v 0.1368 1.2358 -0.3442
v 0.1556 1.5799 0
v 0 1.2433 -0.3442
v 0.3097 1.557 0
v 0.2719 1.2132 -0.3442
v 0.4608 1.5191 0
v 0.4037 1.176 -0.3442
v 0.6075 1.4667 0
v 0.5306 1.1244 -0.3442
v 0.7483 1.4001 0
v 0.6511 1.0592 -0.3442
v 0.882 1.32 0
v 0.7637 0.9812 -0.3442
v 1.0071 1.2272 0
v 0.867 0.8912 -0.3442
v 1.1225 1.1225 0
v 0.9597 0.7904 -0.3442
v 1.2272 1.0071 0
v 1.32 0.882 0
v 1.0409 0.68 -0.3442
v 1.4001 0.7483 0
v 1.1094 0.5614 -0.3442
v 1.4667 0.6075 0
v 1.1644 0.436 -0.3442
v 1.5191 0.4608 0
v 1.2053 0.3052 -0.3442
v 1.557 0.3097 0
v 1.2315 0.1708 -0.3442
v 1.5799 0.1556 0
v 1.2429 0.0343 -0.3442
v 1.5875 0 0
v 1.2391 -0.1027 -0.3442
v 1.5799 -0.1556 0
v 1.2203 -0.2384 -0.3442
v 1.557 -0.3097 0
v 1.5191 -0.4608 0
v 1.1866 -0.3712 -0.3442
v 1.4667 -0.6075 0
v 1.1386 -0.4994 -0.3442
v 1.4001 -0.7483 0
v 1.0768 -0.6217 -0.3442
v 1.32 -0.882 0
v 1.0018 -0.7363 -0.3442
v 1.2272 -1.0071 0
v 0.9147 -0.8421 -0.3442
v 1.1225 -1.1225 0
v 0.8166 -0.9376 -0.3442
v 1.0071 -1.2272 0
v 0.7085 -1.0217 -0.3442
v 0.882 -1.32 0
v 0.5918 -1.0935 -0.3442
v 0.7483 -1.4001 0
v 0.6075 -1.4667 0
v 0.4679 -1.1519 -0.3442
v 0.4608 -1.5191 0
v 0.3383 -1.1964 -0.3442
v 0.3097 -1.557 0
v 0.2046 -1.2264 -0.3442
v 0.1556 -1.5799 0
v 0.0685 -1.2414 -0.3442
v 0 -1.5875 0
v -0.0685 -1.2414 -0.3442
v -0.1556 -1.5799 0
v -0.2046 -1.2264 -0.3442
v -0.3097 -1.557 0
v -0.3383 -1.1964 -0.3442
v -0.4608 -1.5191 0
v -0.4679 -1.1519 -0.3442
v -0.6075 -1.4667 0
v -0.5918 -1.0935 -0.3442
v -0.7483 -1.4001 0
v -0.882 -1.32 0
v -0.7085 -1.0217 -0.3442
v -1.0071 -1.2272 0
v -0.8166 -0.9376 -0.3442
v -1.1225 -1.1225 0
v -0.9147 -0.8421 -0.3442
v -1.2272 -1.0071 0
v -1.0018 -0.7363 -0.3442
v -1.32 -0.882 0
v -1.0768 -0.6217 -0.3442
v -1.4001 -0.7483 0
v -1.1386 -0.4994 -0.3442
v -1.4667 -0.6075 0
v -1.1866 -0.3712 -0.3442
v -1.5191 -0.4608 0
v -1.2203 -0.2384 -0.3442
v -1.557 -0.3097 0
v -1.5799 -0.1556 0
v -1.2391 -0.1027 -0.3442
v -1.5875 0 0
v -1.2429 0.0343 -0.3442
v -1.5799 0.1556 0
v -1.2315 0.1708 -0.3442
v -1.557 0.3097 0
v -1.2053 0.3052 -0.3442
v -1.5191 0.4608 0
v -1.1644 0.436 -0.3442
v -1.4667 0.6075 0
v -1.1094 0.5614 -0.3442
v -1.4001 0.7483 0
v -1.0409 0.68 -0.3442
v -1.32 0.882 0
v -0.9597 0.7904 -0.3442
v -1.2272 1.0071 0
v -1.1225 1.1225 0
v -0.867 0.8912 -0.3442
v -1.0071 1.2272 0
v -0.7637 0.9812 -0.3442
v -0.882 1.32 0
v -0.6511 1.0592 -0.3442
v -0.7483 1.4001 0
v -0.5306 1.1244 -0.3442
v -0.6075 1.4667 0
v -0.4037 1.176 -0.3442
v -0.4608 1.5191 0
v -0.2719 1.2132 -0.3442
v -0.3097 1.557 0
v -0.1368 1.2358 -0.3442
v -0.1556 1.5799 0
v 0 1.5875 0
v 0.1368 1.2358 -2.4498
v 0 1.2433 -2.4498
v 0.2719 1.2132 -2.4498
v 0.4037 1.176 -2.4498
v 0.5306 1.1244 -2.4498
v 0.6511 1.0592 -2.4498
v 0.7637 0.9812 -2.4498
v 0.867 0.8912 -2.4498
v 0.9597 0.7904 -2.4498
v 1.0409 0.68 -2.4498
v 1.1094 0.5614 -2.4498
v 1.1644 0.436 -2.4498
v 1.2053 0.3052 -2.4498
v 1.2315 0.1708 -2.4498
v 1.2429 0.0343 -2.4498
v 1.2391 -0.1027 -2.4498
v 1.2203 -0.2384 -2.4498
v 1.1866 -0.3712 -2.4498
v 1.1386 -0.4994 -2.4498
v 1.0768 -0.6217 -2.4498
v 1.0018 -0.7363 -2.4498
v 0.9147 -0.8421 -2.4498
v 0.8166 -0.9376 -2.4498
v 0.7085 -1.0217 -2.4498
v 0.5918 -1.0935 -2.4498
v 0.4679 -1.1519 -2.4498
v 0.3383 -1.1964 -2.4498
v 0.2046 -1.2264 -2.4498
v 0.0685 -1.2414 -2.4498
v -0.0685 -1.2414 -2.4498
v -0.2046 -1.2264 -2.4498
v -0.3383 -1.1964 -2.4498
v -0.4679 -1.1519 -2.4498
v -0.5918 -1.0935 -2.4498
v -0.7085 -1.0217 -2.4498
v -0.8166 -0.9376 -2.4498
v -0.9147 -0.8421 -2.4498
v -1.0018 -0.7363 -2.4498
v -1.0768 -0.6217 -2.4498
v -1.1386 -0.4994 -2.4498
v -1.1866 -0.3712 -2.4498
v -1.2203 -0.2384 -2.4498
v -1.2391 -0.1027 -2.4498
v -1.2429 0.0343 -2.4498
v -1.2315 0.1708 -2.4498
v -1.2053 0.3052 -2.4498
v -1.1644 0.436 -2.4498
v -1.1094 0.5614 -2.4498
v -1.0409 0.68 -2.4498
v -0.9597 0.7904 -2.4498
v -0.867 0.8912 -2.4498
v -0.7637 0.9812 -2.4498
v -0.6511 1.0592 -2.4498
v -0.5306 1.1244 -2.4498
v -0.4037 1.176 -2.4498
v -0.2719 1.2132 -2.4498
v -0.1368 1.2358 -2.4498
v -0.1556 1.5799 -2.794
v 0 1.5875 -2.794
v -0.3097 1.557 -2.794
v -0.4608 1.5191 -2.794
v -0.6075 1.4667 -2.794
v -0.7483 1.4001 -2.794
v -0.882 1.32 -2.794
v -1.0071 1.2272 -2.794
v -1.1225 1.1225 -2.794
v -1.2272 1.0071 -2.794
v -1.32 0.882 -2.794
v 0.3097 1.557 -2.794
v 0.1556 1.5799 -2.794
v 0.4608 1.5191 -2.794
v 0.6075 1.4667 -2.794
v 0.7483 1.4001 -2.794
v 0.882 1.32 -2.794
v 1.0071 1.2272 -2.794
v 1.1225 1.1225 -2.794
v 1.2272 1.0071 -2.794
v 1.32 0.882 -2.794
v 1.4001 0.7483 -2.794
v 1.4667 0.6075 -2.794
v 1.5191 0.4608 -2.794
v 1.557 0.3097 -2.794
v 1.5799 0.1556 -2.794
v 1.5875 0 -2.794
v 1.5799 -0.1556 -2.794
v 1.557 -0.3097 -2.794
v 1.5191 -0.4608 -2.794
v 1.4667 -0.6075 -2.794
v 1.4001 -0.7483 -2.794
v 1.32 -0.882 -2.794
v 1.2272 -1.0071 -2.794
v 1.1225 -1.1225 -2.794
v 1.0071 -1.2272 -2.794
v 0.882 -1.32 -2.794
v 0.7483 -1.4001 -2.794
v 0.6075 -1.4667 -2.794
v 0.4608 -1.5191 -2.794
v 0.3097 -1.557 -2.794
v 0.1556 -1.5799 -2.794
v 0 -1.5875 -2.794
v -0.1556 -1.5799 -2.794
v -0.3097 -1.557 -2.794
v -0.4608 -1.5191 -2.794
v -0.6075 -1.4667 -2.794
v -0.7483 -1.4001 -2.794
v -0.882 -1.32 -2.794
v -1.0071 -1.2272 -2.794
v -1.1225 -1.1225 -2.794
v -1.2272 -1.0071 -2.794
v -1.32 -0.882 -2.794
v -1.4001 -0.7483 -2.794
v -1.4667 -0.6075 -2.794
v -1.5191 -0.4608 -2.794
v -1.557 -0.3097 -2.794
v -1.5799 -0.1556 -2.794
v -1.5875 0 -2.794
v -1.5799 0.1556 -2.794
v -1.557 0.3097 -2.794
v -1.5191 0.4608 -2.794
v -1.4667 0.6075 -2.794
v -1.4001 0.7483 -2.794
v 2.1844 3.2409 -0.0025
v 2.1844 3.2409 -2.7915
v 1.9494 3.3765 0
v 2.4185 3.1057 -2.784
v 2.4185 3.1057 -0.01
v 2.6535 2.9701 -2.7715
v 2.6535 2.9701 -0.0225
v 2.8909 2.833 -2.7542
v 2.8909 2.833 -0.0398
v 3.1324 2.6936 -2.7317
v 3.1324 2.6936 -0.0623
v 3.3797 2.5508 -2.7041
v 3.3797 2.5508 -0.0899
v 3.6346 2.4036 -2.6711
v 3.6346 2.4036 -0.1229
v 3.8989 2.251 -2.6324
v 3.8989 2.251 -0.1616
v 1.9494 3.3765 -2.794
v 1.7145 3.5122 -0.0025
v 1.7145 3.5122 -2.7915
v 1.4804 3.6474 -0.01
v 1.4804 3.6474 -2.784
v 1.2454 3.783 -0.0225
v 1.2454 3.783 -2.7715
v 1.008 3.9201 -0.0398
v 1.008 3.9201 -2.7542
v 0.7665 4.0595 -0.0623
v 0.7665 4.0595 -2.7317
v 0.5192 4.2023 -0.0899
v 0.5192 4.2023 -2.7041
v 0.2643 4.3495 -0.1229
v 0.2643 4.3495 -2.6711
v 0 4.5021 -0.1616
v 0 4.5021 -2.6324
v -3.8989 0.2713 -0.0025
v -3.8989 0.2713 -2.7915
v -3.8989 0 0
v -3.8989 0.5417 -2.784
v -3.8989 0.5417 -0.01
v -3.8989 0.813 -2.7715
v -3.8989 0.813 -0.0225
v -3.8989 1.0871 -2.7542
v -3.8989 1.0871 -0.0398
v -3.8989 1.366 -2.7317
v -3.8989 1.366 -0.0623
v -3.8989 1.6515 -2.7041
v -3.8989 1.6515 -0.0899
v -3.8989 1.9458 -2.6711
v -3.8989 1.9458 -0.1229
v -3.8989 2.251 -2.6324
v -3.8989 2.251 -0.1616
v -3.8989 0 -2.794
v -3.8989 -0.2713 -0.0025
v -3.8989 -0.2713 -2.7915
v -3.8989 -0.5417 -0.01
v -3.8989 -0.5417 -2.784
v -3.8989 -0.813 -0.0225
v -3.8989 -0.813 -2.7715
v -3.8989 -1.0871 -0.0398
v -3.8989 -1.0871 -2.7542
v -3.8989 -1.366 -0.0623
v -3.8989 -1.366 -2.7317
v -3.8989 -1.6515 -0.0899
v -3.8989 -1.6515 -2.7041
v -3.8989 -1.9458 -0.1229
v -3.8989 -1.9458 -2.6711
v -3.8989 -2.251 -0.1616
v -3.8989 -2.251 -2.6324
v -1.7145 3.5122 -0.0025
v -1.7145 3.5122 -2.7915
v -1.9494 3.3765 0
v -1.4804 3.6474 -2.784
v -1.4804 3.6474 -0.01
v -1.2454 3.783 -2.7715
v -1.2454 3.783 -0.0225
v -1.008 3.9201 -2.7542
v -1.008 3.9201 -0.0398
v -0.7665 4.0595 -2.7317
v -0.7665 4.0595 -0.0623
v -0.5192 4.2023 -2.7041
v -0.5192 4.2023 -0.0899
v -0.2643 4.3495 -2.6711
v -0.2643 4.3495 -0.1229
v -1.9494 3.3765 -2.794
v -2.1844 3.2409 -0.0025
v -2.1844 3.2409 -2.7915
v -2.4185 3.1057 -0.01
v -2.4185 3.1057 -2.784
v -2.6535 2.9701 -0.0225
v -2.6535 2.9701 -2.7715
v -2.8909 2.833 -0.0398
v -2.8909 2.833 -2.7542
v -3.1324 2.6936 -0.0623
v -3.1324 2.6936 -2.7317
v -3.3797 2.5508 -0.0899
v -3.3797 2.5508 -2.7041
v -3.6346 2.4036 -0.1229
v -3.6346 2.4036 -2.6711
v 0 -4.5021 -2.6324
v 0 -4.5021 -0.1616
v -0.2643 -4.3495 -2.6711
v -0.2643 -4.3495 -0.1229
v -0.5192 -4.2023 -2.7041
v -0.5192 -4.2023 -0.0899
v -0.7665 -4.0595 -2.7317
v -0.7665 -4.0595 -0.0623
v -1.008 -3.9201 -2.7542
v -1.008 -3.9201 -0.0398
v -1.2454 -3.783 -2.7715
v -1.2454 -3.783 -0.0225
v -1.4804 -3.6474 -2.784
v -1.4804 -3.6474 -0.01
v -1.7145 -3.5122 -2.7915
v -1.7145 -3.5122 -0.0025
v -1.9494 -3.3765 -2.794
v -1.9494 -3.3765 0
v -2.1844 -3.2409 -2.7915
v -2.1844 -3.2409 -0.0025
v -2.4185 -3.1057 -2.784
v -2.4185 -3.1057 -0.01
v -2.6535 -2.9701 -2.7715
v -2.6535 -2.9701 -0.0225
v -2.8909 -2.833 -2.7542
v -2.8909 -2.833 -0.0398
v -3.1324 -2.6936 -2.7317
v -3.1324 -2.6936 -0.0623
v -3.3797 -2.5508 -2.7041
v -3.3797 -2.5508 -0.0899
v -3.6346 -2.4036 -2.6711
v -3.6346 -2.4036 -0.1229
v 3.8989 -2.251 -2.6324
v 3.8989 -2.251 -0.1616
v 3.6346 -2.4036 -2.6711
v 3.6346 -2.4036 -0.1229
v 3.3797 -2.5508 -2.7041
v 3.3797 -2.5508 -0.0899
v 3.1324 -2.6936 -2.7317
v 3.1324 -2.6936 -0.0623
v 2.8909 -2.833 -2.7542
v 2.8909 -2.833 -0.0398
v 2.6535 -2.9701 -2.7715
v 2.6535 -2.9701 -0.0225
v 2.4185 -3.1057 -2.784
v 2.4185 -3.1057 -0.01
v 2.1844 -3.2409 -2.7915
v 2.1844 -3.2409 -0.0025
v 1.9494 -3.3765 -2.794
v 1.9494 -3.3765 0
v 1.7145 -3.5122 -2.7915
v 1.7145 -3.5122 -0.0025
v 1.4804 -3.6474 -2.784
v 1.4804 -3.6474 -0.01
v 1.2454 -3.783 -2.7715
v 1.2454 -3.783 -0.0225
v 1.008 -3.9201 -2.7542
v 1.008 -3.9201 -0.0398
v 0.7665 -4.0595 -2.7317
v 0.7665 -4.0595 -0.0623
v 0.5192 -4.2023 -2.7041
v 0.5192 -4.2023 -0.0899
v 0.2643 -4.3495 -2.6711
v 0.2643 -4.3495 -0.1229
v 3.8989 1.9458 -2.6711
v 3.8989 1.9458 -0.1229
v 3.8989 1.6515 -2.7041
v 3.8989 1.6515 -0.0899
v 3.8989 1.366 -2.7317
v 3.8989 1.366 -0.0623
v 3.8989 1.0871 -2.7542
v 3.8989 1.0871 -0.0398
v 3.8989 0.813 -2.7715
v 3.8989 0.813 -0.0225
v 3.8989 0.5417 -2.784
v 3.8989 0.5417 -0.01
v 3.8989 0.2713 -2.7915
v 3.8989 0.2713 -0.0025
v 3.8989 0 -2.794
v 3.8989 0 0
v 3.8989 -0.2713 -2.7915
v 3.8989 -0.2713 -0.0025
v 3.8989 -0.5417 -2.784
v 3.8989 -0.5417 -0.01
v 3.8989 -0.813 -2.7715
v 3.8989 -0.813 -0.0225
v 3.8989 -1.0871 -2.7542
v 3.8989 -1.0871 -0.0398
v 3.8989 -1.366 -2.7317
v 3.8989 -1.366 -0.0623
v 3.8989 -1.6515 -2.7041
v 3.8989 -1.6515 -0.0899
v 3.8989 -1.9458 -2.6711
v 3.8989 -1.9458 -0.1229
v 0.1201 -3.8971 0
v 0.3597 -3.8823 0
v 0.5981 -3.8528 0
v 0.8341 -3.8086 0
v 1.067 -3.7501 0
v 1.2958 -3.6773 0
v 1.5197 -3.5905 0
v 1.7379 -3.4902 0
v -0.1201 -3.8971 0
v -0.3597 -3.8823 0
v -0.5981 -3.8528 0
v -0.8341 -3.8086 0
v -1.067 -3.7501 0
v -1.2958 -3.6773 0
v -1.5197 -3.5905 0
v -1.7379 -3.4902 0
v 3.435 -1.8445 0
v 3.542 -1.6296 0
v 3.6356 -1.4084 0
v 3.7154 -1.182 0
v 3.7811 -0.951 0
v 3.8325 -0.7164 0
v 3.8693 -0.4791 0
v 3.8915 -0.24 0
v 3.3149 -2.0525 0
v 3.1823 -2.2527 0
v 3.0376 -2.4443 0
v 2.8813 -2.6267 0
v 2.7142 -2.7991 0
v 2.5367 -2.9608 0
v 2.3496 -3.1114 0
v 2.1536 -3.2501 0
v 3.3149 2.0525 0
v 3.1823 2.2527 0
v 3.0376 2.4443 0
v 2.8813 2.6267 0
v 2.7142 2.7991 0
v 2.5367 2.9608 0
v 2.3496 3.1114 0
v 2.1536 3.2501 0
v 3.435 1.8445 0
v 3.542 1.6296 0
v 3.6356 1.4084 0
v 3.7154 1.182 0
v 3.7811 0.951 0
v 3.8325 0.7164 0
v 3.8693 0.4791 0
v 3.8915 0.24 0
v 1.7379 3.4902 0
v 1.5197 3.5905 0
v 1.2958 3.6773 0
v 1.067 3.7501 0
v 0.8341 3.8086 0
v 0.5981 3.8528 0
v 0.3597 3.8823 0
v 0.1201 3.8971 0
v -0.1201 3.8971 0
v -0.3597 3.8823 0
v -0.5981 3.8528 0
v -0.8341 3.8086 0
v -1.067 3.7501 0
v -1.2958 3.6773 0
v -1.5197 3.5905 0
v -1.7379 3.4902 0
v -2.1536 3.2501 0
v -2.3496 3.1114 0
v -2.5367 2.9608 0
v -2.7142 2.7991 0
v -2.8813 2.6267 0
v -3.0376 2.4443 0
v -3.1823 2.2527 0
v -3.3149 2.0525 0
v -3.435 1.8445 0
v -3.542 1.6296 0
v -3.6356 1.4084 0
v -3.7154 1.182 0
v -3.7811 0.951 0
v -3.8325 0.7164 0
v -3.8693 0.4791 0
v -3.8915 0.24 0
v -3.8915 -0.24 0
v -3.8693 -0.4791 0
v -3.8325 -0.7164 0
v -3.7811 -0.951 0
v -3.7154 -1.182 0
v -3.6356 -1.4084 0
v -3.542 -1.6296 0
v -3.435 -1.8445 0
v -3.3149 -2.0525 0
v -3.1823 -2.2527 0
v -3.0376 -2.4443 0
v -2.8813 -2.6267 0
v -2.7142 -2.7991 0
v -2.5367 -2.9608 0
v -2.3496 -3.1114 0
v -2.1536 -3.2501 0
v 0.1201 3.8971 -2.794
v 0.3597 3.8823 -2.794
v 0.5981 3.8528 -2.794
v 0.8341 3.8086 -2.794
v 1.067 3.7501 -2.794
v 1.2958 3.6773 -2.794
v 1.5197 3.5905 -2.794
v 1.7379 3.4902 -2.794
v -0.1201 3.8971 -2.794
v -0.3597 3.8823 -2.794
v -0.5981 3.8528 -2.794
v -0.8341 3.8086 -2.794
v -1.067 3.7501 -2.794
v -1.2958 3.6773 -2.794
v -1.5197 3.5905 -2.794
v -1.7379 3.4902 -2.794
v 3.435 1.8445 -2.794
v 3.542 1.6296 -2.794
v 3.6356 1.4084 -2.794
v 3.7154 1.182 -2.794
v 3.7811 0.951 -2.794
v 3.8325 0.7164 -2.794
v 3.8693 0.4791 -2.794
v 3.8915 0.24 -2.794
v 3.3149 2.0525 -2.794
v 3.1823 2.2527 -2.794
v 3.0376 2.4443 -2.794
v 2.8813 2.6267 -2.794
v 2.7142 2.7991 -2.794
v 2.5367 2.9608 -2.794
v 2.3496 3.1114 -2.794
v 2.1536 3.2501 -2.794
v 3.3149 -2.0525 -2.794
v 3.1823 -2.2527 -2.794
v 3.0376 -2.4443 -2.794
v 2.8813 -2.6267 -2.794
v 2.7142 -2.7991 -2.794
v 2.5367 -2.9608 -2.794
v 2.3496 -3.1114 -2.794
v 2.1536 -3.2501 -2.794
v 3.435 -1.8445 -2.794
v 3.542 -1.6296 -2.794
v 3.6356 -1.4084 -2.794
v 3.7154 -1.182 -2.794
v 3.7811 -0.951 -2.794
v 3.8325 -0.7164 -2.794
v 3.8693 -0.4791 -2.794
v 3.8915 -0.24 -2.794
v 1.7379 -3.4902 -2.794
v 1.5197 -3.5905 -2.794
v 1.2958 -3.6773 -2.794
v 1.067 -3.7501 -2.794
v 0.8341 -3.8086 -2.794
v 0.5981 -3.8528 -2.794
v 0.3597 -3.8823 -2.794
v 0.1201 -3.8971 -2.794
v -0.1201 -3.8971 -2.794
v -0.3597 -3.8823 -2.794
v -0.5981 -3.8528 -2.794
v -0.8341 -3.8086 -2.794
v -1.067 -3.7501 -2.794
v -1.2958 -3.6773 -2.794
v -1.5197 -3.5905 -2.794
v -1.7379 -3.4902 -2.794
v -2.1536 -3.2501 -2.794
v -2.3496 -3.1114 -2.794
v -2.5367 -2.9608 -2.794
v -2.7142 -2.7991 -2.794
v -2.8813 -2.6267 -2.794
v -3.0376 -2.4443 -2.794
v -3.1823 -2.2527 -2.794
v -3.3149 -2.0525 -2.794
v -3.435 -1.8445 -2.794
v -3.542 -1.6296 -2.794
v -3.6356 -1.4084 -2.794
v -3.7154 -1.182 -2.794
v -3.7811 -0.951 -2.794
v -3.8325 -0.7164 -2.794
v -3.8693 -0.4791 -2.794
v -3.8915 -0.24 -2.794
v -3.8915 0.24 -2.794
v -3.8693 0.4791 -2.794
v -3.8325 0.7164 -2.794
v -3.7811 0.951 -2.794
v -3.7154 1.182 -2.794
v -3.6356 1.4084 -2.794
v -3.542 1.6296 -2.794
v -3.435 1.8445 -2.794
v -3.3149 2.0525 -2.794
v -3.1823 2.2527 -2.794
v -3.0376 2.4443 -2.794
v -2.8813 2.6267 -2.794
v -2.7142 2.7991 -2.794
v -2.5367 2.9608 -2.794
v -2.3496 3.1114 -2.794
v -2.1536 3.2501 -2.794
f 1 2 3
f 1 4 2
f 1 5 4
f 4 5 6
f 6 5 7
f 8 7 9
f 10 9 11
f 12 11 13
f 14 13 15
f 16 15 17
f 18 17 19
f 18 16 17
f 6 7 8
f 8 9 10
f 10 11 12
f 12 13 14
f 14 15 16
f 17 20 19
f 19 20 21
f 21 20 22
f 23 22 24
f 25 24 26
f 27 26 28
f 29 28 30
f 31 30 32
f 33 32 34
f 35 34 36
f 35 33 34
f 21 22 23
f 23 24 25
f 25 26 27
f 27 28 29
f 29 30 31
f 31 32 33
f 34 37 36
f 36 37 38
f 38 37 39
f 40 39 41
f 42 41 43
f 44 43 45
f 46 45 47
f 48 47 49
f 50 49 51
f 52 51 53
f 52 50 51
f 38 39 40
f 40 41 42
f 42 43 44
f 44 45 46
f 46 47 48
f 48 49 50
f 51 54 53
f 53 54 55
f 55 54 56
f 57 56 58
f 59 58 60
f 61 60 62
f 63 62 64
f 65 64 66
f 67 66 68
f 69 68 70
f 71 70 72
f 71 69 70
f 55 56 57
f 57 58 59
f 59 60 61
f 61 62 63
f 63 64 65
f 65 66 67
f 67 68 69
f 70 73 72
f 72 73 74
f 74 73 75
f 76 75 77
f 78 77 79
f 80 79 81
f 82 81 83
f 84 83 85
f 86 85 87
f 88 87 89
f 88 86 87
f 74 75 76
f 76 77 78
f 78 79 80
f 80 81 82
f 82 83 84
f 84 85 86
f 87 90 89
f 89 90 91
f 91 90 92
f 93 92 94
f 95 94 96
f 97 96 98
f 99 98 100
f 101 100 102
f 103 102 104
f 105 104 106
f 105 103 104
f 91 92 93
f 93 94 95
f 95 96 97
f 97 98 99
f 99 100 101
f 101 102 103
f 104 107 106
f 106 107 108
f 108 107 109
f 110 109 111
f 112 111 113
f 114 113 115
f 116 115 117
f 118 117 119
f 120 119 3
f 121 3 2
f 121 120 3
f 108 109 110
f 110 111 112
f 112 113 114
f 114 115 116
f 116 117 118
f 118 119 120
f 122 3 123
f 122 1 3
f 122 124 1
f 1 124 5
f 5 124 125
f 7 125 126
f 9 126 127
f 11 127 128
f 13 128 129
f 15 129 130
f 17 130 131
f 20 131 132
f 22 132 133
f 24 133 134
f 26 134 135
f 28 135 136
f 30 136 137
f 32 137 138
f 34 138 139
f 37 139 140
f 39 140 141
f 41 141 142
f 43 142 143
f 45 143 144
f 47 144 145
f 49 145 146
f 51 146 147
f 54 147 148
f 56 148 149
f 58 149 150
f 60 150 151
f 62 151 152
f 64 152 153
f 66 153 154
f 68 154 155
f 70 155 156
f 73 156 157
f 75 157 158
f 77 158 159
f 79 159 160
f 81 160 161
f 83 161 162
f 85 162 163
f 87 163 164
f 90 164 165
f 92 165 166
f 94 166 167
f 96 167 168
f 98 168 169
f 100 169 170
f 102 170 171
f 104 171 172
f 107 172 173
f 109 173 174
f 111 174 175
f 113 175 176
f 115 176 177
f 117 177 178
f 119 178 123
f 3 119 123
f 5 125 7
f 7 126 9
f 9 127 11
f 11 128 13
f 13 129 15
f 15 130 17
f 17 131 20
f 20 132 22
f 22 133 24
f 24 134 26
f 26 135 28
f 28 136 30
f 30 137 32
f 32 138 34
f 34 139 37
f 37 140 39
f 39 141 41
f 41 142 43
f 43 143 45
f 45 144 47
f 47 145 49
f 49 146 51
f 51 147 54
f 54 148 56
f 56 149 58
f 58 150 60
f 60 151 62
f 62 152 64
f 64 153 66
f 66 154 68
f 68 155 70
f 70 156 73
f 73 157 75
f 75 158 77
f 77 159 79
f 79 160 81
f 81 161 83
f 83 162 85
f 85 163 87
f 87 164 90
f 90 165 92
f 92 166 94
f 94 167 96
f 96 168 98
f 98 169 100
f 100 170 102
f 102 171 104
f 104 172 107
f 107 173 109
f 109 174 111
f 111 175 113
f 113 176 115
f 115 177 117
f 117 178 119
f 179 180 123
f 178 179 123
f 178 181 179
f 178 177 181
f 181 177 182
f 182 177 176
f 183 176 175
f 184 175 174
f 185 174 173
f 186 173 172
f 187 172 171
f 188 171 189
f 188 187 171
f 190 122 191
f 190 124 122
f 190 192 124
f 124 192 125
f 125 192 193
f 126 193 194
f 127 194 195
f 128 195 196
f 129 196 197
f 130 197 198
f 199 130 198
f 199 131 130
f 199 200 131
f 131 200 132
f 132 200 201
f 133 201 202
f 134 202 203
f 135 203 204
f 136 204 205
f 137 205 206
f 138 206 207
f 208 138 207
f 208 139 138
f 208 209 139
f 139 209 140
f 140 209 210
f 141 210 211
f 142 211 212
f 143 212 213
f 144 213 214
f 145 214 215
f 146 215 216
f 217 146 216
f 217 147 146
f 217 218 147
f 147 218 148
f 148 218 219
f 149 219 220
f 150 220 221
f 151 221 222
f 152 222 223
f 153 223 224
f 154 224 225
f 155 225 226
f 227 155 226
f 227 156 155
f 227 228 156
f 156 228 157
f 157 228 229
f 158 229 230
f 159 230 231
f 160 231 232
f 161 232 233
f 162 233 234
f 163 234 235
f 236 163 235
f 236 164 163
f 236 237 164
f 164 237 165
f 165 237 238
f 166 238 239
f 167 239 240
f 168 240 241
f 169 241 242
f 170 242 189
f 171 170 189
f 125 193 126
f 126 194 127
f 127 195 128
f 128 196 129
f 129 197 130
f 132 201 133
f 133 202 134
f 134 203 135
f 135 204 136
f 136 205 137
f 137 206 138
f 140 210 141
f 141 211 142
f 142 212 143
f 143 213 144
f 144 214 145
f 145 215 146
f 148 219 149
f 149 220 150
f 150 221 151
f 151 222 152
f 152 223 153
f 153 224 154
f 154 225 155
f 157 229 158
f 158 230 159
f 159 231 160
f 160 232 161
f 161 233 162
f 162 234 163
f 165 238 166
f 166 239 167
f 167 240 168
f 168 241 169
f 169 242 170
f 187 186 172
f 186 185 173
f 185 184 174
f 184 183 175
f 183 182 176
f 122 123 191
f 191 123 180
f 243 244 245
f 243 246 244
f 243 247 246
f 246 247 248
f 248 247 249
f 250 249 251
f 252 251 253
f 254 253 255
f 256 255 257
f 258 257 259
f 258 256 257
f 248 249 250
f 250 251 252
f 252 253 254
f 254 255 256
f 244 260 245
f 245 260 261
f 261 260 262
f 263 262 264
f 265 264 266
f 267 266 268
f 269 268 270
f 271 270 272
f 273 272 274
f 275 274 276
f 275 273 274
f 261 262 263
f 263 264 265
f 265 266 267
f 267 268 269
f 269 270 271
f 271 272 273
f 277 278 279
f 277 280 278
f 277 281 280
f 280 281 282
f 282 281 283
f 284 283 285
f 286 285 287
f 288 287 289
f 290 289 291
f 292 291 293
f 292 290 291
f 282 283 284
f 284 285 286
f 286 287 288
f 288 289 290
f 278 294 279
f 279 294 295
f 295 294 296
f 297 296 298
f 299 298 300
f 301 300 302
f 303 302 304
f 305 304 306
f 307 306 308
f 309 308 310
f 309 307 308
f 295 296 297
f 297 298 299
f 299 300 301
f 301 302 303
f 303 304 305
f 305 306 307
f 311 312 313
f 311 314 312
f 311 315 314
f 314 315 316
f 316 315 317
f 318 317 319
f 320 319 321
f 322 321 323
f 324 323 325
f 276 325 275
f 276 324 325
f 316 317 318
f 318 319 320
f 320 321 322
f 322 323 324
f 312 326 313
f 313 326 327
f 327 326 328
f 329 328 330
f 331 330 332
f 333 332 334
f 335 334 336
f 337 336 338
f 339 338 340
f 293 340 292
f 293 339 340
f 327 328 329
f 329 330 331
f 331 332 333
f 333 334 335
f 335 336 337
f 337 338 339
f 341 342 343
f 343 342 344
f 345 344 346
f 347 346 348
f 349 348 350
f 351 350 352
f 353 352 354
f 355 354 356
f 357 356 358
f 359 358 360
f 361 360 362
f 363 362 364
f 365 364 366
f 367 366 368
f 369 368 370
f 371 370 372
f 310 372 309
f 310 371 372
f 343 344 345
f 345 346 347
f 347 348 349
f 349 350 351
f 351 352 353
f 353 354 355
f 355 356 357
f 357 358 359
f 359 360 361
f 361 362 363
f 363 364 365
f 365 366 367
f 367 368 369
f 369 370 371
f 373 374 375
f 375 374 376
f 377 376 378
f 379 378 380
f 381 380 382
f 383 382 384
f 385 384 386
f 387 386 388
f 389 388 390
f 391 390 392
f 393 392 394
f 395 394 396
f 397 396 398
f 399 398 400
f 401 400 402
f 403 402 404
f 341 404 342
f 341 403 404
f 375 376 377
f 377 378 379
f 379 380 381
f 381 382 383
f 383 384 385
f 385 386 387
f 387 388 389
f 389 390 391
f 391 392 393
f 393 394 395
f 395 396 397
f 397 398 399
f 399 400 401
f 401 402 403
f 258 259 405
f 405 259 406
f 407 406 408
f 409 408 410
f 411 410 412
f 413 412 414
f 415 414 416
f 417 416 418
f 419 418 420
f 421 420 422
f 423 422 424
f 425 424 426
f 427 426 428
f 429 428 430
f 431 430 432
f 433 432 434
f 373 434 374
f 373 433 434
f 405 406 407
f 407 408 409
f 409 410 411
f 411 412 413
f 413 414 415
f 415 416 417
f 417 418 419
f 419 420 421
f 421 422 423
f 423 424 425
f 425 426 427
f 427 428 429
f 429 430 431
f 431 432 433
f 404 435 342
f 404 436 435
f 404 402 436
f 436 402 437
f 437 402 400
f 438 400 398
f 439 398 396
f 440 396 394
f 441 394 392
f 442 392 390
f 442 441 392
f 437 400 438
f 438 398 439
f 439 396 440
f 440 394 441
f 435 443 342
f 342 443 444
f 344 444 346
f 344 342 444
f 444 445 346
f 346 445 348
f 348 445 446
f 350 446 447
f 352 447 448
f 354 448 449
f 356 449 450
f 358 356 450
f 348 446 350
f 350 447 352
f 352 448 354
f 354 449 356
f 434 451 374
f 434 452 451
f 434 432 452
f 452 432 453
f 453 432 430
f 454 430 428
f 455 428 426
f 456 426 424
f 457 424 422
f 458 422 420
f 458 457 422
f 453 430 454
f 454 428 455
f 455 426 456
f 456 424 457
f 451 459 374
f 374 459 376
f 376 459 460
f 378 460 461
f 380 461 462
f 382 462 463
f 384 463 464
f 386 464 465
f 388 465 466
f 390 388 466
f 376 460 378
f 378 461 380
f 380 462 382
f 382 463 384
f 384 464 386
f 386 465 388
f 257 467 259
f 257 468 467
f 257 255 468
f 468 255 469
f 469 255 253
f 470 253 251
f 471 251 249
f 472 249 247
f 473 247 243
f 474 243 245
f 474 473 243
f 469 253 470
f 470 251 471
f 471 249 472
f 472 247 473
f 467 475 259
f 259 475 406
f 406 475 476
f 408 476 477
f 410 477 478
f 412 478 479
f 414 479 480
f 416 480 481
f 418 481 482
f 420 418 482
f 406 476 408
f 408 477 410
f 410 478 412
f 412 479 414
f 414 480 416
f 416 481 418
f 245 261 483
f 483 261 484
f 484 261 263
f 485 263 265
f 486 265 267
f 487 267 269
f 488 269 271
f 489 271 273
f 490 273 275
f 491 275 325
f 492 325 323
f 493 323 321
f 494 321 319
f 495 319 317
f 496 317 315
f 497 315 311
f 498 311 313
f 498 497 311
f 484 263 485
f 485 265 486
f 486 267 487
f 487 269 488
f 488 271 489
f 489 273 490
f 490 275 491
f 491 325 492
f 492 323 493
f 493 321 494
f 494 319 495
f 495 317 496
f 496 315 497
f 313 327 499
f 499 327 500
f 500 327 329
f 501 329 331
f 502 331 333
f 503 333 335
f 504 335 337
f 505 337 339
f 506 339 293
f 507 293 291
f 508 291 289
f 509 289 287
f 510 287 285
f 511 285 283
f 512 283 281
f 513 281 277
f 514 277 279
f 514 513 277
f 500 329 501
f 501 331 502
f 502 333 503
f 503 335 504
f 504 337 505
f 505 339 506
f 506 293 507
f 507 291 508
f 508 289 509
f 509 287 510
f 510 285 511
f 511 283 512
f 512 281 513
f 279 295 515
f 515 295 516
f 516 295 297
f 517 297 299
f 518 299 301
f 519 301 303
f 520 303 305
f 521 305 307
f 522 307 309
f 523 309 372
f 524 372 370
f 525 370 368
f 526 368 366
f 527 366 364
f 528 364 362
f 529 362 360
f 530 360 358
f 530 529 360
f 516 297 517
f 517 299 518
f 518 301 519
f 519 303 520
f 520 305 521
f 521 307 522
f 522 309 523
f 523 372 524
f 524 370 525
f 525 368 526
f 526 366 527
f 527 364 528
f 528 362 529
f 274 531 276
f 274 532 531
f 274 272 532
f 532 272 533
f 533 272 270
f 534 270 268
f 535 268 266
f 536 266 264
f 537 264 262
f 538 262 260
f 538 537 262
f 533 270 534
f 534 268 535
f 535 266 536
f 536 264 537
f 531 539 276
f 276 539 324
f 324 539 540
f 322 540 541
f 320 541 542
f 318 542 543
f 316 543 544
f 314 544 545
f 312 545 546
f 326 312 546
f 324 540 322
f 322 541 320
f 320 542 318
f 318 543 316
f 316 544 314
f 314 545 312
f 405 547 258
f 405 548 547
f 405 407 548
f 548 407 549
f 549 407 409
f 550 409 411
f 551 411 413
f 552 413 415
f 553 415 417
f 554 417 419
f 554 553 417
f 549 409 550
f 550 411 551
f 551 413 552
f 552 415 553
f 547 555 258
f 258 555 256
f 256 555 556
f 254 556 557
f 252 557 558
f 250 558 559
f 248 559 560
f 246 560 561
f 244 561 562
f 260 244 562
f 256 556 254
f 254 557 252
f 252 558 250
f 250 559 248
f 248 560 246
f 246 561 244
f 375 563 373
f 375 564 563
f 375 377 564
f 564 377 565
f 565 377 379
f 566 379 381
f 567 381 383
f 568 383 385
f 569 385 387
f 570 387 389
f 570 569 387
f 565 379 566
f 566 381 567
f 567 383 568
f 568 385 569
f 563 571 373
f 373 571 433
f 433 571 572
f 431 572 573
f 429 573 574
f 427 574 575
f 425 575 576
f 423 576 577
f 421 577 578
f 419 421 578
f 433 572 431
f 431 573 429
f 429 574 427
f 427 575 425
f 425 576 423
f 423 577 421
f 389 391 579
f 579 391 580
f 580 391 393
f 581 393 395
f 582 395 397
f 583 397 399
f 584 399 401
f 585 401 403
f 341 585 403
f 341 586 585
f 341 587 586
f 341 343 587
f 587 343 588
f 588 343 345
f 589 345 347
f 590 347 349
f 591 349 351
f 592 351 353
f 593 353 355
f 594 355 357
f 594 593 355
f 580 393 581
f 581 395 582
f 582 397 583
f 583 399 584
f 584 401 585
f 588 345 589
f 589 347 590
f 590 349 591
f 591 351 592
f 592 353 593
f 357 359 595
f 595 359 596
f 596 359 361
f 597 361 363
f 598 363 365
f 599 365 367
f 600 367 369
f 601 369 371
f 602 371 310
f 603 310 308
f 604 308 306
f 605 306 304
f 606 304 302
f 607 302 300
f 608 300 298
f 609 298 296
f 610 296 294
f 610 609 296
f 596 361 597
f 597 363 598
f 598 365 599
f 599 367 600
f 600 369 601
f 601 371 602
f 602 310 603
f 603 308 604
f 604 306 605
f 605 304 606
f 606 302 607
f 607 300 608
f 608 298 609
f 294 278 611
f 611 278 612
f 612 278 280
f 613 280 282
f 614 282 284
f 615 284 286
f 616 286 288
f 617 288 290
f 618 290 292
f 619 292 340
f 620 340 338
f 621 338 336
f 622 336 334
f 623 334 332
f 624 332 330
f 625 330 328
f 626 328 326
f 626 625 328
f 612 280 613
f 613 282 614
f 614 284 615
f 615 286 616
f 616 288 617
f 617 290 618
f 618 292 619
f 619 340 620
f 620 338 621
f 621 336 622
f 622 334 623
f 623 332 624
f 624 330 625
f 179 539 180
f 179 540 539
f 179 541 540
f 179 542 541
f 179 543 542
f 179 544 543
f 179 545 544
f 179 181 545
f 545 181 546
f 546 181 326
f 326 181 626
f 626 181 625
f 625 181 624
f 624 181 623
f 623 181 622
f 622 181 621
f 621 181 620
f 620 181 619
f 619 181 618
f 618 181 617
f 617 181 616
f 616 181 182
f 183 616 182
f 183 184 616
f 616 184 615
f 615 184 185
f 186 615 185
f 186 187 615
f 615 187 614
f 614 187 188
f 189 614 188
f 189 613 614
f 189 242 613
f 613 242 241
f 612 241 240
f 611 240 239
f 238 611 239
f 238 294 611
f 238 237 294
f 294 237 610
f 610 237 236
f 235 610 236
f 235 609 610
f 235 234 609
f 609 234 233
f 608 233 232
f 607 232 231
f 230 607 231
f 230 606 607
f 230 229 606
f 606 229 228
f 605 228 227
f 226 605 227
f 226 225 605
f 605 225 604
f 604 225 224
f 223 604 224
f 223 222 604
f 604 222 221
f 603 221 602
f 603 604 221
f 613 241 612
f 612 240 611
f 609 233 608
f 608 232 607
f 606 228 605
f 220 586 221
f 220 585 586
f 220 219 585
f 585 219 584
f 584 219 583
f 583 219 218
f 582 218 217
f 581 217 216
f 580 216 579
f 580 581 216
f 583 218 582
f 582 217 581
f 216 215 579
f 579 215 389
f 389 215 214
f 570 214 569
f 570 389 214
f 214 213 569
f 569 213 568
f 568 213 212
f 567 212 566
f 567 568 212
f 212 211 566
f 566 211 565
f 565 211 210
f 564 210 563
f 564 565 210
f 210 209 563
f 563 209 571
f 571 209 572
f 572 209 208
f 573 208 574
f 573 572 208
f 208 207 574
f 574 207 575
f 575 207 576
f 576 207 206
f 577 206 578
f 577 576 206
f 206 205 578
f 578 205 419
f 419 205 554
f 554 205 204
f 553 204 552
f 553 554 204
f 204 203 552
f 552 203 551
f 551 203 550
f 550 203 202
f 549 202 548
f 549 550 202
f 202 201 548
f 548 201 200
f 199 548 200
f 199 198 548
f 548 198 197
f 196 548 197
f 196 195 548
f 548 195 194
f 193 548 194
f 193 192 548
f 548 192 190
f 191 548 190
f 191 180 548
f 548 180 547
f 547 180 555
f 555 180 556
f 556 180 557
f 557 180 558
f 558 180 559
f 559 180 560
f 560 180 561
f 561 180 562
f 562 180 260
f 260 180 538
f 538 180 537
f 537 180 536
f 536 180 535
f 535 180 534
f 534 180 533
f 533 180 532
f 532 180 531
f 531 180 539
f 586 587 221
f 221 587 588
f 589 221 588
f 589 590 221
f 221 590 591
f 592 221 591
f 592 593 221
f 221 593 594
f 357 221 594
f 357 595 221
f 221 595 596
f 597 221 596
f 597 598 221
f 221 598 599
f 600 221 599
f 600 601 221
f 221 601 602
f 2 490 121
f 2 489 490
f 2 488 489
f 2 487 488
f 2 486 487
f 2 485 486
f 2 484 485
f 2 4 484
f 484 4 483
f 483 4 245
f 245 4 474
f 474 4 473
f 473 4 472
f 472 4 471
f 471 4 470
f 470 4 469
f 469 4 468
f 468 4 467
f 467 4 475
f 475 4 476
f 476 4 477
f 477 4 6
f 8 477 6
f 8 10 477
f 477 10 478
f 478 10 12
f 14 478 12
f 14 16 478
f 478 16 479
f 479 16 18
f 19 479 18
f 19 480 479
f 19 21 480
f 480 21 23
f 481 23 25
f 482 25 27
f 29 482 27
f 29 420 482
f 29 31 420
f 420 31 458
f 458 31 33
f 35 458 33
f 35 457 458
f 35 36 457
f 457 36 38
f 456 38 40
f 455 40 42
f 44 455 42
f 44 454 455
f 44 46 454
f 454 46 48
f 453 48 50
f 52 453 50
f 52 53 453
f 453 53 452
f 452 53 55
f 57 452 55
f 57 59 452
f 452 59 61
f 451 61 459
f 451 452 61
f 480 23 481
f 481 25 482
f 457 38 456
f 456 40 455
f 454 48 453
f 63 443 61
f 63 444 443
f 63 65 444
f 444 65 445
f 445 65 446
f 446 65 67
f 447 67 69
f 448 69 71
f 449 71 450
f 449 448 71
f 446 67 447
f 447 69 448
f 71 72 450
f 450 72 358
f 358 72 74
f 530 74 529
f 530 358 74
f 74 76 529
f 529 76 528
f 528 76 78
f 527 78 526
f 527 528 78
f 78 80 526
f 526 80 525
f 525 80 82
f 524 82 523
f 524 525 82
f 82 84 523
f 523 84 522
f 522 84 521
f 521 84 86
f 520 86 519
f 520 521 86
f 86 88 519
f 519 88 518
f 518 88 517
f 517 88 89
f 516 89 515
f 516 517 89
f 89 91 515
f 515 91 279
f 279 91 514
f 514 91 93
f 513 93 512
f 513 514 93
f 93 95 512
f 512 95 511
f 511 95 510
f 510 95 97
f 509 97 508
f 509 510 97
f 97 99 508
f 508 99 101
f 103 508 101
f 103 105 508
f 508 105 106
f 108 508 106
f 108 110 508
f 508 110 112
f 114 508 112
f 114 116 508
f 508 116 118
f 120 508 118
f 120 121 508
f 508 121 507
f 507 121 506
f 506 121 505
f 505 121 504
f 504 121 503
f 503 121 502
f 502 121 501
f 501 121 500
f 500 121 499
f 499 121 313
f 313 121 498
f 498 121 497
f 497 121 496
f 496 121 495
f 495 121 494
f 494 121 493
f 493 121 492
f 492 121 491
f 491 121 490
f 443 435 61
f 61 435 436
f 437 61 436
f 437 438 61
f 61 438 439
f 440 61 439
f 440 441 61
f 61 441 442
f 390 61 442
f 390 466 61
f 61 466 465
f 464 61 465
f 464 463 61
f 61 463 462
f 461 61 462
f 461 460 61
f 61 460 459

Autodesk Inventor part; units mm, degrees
sketch "Sketch_8" plane through (0, 0, 0) normal (1, 0, 0) x (0, 1, 0)
  line L0 (0, -2.794) -> (0, 0)
  line L1 (0, 0) -> (3.8989, 0)
  line L2 (3.8989, 0) -> (4.6787, -0.2089)
  line L3 (4.6787, -0.2089) -> (4.6787, -2.5851)
  line L4 (4.6787, -2.5851) -> (3.8989, -2.794)
  line L5 (3.8989, -2.794) -> (0, -2.794)
  line L6 (0, -2.794) -> (0, 0)
sketch "Sketch_10" plane through (0, 0, 0) normal (0, 0, 1) x (1, 0, 0)
  line L0 (-7.7978, 7.7978) -> (-7.7978, -7.7978)
  line L1 (-7.7978, -7.7978) -> (7.7978, -7.7978)
  line L2 (7.7978, -7.7978) -> (7.7978, 7.7978)
  line L3 (7.7978, 7.7978) -> (-7.7978, 7.7978)
  line L4 (-3.8989, 2.251) -> (-3.8989, -2.251)
  line L5 (-3.8989, -2.251) -> (0, -4.5021)
  line L6 (0, -4.5021) -> (3.8989, -2.251)
  line L7 (3.8989, -2.251) -> (3.8989, 2.251)
  line L8 (3.8989, 2.251) -> (0, 4.5021)
  line L9 (0, 4.5021) -> (-3.8989, 2.251)
revolve "Revolution1" add sketch "Sketch_8" angle 360 about axis through (0, 0, -2.794) along (0, 0, -1)
extrude "Extrusion1" cut sketch "Sketch_10" against normal blind 2.794
sketch "Sketch_13" plane through (0, 0, 0) normal (1, 0, 0) x (0, 1, 0)
  line L0 (0, -2.794) -> (0, 0)
  line L1 (0, 0) -> (1.5875, 0)
  line L2 (1.5875, 0) -> (1.2433, -0.3442)
  line L3 (1.2433, -0.3442) -> (1.2433, -2.4498)
  line L4 (1.2433, -2.4498) -> (1.5875, -2.794)
  line L5 (1.5875, -2.794) -> (0, -2.794)
  line L6 (0, -2.794) -> (0, 0)
revolve "Revolution2" cut sketch "Sketch_13" angle 360 about axis through (0, 0, -2.794) along (0, 0, -1)
thread "Thread1" size "5-40 UNC" class "2B" standard "ANSI Unified Screw Threads" full length
ref_plane "NUT_XY" through (0, 0, 0) normal (0, 0, 1) x (1, 0, 0)
ref_plane "NUT_YZ" through (0, 0, 0) normal (1, 0, 0) x (0, 1, 0)
ref_plane "NUT_ZX" through (0, 0, 0) normal (0, 1, 0) x (0, 0, 1)
ref_plane "a1_XY" through (-3.8989, 3.8989, 0) normal (0, 0, 1) x (1, 0, 0)
ref_plane "a1_YZ" through (-3.8989, 3.8989, 0) normal (1, 0, 0) x (0, 1, 0)
ref_plane "a1_ZX" through (-3.8989, 3.8989, 0) normal (0, 1, 0) x (0, 0, 1)
ref_plane "a2_XY" through (3.8989, 3.8989, 0) normal (0, 0, 1) x (1, 0, 0)
ref_plane "a2_YZ" through (3.8989, 3.8989, 0) normal (1, 0, 0) x (0, 1, 0)
ref_plane "a2_ZX" through (3.8989, 3.8989, 0) normal (0, 1, 0) x (0, 0, 1)
ref_plane "b1_XY" through (0, 3.8989, 0) normal (1, 0, 0) x (0, 0, -1)
ref_plane "b1_YZ" through (0, 3.8989, 0) normal (0, 0, -1) x (0, 1, 0)
ref_plane "b1_ZX" through (0, 3.8989, 0) normal (0, 1, 0) x (1, 0, 0)
ref_plane "b2_XY" through (0, 3.8989, -2.794) normal (1, 0, 0) x (0, 0, -1)
ref_plane "b2_YZ" through (0, 3.8989, -2.794) normal (0, 0, -1) x (0, 1, 0)
ref_plane "b2_ZX" through (0, 3.8989, -2.794) normal (0, 1, 0) x (1, 0, 0)
ref_plane "e_XY" through (0, 0, -2.794) normal (1, 0, 0) x (0, 0, -1)
ref_plane "e_YZ" through (0, 0, -2.794) normal (0, 0, -1) x (0, 1, 0)
ref_plane "e_ZX" through (0, 0, -2.794) normal (0, 1, 0) x (1, 0, 0)
ref_plane "th1_XY" through (0, 1.5875, -2.794) normal (1, 0, 0) x (0, 0, -1)
ref_plane "th1_YZ" through (0, 1.5875, -2.794) normal (0, 0, -1) x (0, 1, 0)
ref_plane "th1_ZX" through (0, 1.5875, -2.794) normal (0, 1, 0) x (1, 0, 0)
ref_plane "th2_XY" through (0, -1.5875, -2.794) normal (1, 0, 0) x (0, 0, -1)
ref_plane "th2_YZ" through (0, -1.5875, -2.794) normal (0, 0, -1) x (0, 1, 0)
ref_plane "th2_ZX" through (0, -1.5875, -2.794) normal (0, 1, 0) x (1, 0, 0)
ref_plane "ol1_XY" through (0, 0, -3.8989) normal (0, 1, 0) x (1, 0, 0)
ref_plane "ol1_YZ" through (0, 0, -3.8989) normal (1, 0, 0) x (0, 0, -1)
ref_plane "ol1_ZX" through (0, 0, -3.8989) normal (0, 0, -1) x (0, 1, 0)
ref_plane "ol2_XY" through (2.794, 0, -3.8989) normal (0, 1, 0) x (1, 0, 0)
ref_plane "ol2_YZ" through (2.794, 0, -3.8989) normal (1, 0, 0) x (0, 0, -1)
ref_plane "ol2_ZX" through (2.794, 0, -3.8989) normal (0, 0, -1) x (0, 1, 0)
properties part number "D-3745"
